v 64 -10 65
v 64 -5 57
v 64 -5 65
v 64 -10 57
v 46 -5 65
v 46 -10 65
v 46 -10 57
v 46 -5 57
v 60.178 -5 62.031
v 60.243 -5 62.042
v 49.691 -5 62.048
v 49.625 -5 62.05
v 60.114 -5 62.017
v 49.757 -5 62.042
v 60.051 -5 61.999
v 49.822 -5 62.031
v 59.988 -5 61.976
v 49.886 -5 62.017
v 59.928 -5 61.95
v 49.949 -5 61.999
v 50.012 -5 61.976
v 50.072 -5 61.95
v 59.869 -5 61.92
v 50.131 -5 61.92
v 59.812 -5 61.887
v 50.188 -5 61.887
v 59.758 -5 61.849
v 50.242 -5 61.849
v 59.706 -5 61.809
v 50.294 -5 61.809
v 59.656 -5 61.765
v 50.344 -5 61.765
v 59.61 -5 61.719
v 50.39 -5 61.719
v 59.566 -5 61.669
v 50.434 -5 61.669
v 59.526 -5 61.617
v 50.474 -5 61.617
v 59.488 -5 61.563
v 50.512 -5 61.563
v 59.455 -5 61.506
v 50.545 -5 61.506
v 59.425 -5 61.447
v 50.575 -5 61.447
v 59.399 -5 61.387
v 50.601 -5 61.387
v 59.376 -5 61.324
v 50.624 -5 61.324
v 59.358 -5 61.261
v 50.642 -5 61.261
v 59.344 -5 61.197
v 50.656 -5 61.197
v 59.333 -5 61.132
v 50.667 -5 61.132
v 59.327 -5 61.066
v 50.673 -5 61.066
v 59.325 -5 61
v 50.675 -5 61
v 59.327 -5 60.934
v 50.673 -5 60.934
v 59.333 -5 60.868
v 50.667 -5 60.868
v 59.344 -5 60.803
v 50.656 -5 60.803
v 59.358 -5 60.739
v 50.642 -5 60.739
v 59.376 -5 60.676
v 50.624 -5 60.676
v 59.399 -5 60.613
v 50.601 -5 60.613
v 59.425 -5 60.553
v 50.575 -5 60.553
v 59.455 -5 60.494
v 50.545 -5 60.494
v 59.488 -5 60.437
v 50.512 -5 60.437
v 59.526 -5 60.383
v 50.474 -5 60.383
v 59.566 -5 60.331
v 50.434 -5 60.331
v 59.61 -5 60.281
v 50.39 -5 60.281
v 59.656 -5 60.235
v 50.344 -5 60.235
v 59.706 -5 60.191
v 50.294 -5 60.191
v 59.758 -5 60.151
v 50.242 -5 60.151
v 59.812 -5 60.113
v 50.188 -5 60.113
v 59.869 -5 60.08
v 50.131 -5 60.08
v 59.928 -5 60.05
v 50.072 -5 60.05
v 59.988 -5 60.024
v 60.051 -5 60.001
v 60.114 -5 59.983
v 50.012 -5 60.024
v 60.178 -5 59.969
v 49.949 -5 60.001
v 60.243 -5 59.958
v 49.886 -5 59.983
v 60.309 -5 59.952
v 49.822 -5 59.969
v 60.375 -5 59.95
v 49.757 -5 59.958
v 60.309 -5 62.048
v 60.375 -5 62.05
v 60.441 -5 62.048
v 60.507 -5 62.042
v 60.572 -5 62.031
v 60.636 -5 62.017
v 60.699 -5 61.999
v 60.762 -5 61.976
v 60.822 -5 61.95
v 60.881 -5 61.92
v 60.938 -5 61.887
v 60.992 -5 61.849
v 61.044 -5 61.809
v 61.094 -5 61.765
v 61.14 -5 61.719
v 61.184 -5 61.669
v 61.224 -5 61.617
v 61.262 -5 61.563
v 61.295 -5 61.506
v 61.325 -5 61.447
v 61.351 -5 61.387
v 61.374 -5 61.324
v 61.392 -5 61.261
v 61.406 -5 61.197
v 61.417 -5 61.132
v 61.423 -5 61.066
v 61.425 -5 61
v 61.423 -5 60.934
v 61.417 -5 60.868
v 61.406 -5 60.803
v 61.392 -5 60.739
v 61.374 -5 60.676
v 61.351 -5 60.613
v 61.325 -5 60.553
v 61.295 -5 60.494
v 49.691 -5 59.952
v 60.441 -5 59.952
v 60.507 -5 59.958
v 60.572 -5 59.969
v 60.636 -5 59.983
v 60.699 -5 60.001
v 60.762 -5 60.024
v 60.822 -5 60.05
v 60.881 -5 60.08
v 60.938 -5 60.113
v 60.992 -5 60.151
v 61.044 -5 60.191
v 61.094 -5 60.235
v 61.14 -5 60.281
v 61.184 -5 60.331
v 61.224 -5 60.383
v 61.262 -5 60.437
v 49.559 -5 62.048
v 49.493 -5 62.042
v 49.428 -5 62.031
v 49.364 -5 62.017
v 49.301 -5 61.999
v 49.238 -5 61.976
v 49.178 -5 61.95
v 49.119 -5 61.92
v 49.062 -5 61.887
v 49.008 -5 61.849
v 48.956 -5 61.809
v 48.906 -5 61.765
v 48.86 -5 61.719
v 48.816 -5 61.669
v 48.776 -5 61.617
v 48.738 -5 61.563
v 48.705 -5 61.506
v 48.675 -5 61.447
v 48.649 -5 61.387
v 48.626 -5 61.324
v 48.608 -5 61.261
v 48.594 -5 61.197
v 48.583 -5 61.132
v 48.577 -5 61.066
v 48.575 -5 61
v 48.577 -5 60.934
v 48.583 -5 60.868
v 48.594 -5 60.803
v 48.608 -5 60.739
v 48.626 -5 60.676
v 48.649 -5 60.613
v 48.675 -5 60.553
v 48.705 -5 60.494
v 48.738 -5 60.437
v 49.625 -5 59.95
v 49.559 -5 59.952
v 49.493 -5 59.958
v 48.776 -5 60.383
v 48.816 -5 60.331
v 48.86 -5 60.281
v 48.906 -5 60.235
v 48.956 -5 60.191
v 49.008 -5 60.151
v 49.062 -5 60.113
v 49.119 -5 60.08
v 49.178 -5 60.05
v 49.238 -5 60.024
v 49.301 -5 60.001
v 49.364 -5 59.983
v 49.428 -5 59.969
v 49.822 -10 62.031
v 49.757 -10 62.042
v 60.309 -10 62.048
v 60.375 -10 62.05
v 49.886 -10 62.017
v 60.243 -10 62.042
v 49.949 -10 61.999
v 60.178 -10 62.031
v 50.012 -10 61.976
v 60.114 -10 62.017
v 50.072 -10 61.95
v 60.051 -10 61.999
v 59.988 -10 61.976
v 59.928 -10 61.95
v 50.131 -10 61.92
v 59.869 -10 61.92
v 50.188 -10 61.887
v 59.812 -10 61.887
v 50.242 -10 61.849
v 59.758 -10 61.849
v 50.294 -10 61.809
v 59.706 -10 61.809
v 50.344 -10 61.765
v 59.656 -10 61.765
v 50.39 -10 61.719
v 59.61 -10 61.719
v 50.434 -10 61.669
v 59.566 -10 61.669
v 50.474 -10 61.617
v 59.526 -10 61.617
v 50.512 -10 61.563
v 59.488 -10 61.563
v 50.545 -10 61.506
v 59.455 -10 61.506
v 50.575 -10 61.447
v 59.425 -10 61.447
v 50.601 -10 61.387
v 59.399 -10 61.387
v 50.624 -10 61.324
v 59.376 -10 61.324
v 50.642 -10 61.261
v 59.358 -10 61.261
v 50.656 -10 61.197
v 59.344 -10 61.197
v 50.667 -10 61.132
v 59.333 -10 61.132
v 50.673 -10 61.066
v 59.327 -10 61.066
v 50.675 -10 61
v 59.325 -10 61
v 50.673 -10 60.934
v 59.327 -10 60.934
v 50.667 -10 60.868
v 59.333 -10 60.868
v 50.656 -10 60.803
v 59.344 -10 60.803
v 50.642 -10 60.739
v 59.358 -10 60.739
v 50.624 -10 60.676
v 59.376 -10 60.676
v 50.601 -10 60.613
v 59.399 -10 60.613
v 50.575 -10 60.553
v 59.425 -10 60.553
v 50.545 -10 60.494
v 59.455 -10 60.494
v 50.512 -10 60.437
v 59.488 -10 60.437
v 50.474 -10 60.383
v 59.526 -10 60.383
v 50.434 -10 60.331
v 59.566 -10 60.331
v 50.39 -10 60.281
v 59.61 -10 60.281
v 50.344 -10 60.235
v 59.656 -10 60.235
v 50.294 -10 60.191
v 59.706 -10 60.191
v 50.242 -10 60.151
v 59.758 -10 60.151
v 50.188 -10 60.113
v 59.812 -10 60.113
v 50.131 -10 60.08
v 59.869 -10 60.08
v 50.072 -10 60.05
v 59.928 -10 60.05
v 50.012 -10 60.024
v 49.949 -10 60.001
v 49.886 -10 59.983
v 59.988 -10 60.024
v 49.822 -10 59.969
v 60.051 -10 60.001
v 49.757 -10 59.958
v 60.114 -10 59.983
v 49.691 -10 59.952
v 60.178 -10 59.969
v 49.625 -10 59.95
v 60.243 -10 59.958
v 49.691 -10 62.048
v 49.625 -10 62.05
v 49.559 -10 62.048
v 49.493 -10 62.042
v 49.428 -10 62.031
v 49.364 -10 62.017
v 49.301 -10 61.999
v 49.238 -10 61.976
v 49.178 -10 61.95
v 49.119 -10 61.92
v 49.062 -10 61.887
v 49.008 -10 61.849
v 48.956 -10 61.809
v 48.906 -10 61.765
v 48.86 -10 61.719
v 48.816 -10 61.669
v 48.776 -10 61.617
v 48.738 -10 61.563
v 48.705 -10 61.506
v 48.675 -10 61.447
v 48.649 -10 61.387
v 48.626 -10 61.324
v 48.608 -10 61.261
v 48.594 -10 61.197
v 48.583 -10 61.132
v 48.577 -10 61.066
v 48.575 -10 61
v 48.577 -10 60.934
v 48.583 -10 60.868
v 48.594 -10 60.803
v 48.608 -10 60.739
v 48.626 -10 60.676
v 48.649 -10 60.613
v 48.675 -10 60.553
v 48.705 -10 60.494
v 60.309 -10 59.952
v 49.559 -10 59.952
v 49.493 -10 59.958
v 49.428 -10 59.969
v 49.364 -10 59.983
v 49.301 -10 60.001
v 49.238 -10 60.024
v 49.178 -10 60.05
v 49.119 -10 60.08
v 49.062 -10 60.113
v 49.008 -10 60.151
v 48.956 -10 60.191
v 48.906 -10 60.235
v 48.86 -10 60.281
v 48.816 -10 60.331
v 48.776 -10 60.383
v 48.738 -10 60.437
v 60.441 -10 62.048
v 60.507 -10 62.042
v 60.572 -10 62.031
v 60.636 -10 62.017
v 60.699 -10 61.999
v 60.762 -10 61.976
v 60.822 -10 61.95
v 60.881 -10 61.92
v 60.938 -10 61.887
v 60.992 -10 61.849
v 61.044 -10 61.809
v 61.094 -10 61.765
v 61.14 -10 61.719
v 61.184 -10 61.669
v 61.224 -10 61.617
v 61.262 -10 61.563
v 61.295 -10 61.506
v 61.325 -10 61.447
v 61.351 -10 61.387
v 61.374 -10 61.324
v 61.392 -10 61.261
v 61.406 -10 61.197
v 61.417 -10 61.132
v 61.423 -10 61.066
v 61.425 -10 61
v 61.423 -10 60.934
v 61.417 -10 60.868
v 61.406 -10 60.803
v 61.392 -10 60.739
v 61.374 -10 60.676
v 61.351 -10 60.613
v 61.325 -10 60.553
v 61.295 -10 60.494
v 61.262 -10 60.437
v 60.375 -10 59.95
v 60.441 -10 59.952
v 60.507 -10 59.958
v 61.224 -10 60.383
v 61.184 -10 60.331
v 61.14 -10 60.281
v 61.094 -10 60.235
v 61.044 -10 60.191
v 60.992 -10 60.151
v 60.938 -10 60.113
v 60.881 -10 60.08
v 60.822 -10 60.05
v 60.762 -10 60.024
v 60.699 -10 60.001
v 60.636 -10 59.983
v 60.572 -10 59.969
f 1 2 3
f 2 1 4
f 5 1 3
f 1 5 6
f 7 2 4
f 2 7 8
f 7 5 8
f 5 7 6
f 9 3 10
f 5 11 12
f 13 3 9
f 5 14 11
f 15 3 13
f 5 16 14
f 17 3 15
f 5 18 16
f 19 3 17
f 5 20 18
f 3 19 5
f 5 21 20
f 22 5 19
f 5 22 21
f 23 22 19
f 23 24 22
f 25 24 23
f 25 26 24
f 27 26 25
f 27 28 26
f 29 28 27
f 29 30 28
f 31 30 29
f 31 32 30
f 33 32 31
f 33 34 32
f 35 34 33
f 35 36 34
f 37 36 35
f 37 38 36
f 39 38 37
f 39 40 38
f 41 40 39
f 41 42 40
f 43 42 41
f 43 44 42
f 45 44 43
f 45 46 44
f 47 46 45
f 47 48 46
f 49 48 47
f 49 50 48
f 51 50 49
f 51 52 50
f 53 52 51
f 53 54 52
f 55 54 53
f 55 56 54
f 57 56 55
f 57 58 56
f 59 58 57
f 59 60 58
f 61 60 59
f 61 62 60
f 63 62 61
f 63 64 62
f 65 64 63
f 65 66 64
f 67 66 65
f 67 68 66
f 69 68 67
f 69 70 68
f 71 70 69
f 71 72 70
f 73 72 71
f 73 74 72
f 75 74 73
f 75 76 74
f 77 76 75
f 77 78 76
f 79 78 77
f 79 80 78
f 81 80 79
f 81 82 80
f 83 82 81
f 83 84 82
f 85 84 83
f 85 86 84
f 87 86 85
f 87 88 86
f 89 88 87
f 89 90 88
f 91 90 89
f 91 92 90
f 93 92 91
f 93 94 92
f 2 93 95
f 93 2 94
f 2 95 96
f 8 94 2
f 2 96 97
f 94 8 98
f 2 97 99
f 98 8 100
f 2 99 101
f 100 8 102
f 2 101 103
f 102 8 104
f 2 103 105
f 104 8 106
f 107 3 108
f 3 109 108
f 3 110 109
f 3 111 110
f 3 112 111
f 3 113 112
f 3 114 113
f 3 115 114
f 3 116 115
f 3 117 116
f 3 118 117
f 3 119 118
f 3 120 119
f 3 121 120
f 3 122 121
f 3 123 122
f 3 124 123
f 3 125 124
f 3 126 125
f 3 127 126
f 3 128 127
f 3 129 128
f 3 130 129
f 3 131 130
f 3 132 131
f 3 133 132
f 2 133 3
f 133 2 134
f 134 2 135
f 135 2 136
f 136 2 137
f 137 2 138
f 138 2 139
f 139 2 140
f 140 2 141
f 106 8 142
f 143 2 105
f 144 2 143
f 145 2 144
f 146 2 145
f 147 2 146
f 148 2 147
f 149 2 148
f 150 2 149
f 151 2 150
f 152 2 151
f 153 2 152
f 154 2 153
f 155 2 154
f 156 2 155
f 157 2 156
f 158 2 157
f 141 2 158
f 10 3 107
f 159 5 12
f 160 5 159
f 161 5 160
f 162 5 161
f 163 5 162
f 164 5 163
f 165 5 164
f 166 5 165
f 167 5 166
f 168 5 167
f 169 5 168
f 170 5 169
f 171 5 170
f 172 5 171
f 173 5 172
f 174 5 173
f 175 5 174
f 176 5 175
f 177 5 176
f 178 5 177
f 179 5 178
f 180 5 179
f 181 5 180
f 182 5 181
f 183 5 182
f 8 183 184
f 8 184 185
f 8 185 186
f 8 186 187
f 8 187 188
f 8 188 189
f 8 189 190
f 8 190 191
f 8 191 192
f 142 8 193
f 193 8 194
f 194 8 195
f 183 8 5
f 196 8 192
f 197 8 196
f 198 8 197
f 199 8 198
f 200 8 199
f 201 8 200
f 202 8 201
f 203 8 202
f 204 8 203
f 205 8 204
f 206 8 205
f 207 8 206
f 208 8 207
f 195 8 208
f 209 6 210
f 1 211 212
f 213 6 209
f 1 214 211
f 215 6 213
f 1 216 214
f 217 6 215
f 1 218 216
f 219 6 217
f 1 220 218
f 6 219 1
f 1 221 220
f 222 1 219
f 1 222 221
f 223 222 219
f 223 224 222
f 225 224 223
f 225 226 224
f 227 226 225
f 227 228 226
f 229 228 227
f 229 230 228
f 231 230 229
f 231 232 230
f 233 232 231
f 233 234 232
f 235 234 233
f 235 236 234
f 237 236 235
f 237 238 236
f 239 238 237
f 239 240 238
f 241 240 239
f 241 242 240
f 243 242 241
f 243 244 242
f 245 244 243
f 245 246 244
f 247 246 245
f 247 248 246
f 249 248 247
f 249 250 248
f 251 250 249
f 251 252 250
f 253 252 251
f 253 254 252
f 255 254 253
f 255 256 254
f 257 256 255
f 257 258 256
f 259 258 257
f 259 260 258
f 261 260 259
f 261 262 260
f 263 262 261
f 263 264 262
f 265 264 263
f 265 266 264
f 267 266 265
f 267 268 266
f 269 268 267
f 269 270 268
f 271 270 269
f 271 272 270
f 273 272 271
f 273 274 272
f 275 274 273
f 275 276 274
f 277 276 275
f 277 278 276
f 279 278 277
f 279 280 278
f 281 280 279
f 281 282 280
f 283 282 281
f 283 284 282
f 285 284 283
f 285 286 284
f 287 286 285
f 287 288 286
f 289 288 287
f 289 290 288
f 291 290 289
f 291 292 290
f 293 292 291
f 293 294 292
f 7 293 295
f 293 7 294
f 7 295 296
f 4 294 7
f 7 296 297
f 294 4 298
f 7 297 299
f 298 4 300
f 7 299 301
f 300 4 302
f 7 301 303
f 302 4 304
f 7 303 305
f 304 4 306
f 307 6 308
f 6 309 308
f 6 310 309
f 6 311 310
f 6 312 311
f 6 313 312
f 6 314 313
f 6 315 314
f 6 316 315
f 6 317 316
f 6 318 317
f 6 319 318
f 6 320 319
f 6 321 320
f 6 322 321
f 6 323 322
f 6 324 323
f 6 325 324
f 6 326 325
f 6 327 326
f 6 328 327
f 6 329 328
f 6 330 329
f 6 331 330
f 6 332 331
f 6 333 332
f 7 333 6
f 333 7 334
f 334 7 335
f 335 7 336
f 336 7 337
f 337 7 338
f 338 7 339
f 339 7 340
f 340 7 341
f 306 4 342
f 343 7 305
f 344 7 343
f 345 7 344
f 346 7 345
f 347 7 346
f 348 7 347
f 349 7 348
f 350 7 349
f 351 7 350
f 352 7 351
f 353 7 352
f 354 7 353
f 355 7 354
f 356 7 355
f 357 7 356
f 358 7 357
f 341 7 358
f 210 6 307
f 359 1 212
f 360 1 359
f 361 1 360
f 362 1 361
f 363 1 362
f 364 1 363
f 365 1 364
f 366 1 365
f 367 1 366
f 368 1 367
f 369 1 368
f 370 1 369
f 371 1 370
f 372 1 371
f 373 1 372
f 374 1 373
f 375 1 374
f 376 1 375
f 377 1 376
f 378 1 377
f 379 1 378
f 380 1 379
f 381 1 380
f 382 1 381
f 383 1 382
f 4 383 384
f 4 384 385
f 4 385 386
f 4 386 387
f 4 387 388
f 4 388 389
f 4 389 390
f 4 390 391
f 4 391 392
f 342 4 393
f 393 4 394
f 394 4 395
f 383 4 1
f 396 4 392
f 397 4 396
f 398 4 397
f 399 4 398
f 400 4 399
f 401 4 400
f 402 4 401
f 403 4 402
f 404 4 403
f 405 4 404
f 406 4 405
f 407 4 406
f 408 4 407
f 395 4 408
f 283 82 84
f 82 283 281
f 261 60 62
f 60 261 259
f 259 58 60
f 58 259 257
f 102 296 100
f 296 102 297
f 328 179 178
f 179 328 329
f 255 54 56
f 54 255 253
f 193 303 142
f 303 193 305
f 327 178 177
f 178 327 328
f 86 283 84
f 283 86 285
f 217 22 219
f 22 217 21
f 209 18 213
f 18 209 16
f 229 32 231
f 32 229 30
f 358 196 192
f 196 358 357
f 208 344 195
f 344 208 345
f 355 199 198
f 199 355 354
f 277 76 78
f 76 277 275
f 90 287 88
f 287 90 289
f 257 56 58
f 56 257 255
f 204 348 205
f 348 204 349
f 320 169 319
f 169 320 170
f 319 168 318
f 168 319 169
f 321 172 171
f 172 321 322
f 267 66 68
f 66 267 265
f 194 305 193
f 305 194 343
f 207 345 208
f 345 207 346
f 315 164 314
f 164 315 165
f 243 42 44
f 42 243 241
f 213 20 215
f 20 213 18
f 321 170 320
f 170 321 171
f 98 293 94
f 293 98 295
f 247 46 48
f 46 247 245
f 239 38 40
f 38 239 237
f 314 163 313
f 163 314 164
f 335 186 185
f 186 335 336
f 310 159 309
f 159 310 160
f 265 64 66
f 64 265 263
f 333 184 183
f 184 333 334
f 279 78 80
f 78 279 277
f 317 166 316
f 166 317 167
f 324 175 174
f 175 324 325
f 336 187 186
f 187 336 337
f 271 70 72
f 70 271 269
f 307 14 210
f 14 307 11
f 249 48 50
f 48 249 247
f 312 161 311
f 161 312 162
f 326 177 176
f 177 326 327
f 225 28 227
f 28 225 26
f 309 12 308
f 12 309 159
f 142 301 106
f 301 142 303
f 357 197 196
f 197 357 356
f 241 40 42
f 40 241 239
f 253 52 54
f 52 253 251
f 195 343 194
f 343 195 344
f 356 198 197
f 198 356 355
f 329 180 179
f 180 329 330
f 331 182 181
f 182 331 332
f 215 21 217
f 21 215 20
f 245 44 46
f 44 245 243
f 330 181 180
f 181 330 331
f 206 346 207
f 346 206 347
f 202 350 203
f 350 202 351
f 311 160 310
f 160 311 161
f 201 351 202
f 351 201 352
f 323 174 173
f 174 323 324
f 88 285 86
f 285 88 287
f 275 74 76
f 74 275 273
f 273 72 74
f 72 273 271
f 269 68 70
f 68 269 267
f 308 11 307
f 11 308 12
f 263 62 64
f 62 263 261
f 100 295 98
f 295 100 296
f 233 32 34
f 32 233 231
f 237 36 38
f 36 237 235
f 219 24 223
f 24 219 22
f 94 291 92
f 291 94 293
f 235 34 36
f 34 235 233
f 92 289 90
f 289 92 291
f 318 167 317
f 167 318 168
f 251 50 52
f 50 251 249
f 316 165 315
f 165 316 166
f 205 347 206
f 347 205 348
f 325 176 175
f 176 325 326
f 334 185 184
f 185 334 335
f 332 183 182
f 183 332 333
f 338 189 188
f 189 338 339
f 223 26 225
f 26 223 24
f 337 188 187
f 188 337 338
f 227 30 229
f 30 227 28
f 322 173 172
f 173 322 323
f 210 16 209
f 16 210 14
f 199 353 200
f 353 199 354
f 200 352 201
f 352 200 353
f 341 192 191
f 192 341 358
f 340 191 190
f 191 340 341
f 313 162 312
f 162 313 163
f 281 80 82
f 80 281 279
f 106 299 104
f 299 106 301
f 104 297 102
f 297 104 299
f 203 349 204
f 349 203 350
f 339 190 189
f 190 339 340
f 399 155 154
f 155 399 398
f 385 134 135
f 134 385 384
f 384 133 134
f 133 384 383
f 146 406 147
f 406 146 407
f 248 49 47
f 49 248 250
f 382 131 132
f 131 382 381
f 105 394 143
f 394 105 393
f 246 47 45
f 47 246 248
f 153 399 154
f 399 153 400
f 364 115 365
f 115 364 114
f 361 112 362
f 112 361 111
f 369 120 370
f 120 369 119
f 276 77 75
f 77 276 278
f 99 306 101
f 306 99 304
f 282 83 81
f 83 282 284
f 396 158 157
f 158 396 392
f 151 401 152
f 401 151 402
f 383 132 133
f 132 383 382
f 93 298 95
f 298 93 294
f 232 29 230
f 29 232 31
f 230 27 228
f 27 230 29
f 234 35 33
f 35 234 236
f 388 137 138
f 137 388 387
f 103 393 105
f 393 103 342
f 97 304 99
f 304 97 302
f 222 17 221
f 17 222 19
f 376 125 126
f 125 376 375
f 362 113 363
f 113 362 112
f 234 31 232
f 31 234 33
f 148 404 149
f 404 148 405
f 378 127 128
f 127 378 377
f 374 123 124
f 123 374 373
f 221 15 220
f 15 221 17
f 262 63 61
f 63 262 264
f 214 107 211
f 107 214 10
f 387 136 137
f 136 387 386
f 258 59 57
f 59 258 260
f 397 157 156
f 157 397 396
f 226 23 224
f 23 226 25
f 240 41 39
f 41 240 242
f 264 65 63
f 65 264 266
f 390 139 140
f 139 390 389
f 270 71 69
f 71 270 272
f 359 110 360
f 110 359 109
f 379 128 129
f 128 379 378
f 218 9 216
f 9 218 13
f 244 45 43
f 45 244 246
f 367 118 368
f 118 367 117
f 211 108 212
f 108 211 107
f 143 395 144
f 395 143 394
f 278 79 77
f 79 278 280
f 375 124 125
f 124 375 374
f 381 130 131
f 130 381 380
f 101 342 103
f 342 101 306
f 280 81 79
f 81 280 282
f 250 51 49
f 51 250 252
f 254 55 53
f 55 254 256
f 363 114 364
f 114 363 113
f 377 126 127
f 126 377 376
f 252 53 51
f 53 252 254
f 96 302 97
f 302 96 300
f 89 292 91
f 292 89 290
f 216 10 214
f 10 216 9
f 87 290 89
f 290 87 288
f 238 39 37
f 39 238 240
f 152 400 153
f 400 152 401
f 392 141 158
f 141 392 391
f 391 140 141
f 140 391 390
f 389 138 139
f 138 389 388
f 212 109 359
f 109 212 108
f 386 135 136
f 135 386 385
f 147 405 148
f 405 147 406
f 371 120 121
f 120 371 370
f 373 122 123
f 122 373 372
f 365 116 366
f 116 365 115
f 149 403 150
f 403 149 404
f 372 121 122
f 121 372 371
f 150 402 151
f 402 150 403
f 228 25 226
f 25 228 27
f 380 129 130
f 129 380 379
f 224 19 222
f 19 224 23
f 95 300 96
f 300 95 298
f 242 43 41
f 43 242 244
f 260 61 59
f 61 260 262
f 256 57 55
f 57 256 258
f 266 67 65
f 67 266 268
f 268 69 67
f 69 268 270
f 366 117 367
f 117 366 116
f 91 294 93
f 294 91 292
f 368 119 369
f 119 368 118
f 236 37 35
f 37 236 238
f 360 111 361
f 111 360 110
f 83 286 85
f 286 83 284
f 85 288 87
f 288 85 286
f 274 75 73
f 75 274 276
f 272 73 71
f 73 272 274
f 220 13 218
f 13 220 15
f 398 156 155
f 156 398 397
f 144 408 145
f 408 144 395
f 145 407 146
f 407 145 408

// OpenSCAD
// ----- ----- ----- Declaração de Variáveis ----- ----- ----- //
res=100;
folga1=0.125;

esp=5;
compriObilongo=20;
largObi=5.85;

basePortax=56;
basePortay=2.85;
basePortaz=15;
PortaR=5.7/2;
PortaAlt=basePortay;
entrePorta=(52.7+41.25)/2;

haste1x=30;
haste1z=30;

haste2x=60;
haste2z=10;

haste3x=10;
haste3z=60+20;

haste4x=10;
haste4z=10;

portax=18;
portaz=8;

entreFuros=(8.6+12.9)/2;
rFuro=2.1/2;

vao=0.5;

entrePard=58-22-6*folga1;

// ----- ----- ----- Declaração de Funções ----- ----- ----- //

// ----- ----- ----- MAIN ----- ----- ----- //
translate([0,0,basePortaz])
difference(){
    translate([0,0,0]){
        //cube([haste2x,esp,haste1z]);
        //translate([0,-esp-(3/2)*basePortay,0])cube([haste2x,esp+(3/2)*basePortay,haste1z]);
        //translate([0,0,haste1z])cube([haste2x,esp,haste2z]);
        //translate([0,0,haste1z+haste2z])cube([haste3x,esp,haste3z]);
        //translate([0,0,haste1z+haste2z+haste3z])cube([haste2x,esp,haste2z]);
        //translate([haste2x-haste3x,0,haste1z+haste2z])cube([haste4x,esp,haste4z-portaz]);
        //translate([haste2x-haste3x+haste4x/2-portax/2,-esp,haste1z+haste2z+haste4z-portaz])cube([portax,esp,portaz]);
        //translate([haste2x-haste3x+haste4x/2-portax/2,0,haste1z+haste2z+haste4z-portaz])cube([portax,esp,portaz]);//
        translate([haste2x-haste3x+haste4x/2-portax/2,-2*esp,haste1z+haste2z+haste4z-portaz])cube([portax,esp,portaz]);
        //translate([haste2x-haste3x,0,haste1z+haste2z+haste3z-haste4z-compriObilongo+portaz])cube([haste4x,esp,haste4z+compriObilongo-portaz]);
        //translate([haste2x-haste3x,-esp,haste1z+haste2z+haste3z-haste4z-compriObilongo+portaz])cube([haste4x,esp,haste4z+compriObilongo-portaz+haste4z]);
        //translate([haste2x-haste3x+haste4x/2-portax/2,-esp,haste1z+haste2z+haste3z-haste4z-compriObilongo])cube([portax,esp,portaz]);
        //translate([haste2x-haste3x+haste4x/2-portax/2,-2*esp,haste1z+haste2z+haste3z-haste4z-compriObilongo])cube([portax,esp,portaz]);
    }
    
    // Furos do Porta
    #translate([-entreFuros/2,-2*esp,0])
    #translate([haste2x-haste4x/2,0,haste1z+haste2z+haste4z-portaz/2])
    #rotate([-90,0,0])
    #cylinder(3*esp,rFuro,rFuro,$fn=res);
    
    #translate([entreFuros/2,-2*esp,0])
    #translate([haste2x-haste4x/2,0,haste1z+haste2z+haste4z-portaz/2])
    #rotate([-90,0,0])
    #cylinder(3*esp,rFuro,rFuro,$fn=res);
    
    #translate([-entreFuros/2,-2*esp,haste1z+haste2z+haste3z-haste4z-20])
    #translate([haste2x-haste4x/2,0,portaz/2])
    #rotate([-90,0,0])
    #cylinder(2*esp,rFuro,rFuro,$fn=res);
    
    #translate([entreFuros/2,-2*esp,haste1z+haste2z+haste3z-haste4z-20])
    #translate([haste2x-haste4x/2,0,portaz/2])
    #rotate([-90,0,0])
    #cylinder(2*esp,rFuro,rFuro,$fn=res);
    
    //Furo Obilongo de Cima
    #hull(){
        #translate([haste2x-haste4x/2,-2*esp,haste1z+haste2z*1.2+haste3z-haste4z-20+(3/2)*portaz])
        #rotate([-90,0,0])
        #cylinder(4*esp,largObi/2,largObi/2,$fn=res);
        
        #translate([0,0,haste4z+compriObilongo-2*portaz+haste2z*0.8])
        #translate([haste2x-haste4x/2,-2*esp,haste1z+haste2z+haste3z-haste4z-20+(3/2)*portaz])
        #rotate([-90,0,0])
        #cylinder(4*esp,largObi/2+folga1,largObi/2+folga1,$fn=res);
    }
    
    // Furo Obilongo de Baixo
    #hull(){
        #translate([haste2x-haste4x/2,-2*esp,haste1z+haste2z*0.8+haste3z-3*haste4z-3*20+(1)*portaz])
        #rotate([-90,0,0])
        #cylinder(4*esp,largObi/2,largObi/2,$fn=res);
        
        #translate([0,0,-(haste4z+compriObilongo-2*portaz+haste2z*0.8)])
        #translate([haste2x-haste4x/2,-2*esp,haste1z+haste2z+haste3z-3*haste4z-3*20+(1)*portaz])
        #rotate([-90,0,0])
        #cylinder(4*esp,largObi/2+folga1,largObi/2+folga1,$fn=res);
    }
    
    #translate([-4*folga1,0,-portaz-(haste4z+compriObilongo-2*portaz+haste2z)])
    #translate([haste2x-haste3x+haste4x/2-portax/2,-2*esp,haste1z+haste2z+haste4z-portaz])
    #cube([portax+8*folga1,2*esp,portaz+haste4z+compriObilongo-2*portaz+haste2z]);
    
    //#translate([haste2x-haste4x/2,-esp,0])
    //#rotate([0,0,45])
    //#translate([-vao/2,-vao/2,0])
    //#cube([vao,vao,haste1z+2*haste2z+haste3z]);
}
/*
difference(){
    translate([haste2x-haste4x/2-basePortax/2,-esp-basePortay/2,0])cube([basePortax,basePortay,basePortaz]);
    
    #translate([haste2x-haste4x/2-entrePorta/2,-esp+basePortay/2,basePortaz/2])
    #rotate([90,0,0])
    #cylinder(PortaAlt,PortaR,PortaR,$fn=res);
   
    #translate([haste2x-haste4x/2+entrePorta/2,-esp+basePortay/2,basePortaz/2])
    #rotate([90,0,0])
    #cylinder(PortaAlt,PortaR,PortaR,$fn=res);
    //entrePorta
}*/


/*// Sustentação 1 
poliedro1Points = [[                       haste2x, -(esp+(3/2)*basePortay),         basePortaz],  //0
                   [haste2x-haste4x/2+basePortax/2, -(esp+(3/2)*basePortay),         basePortaz],  //1
                   [haste2x-haste4x/2+basePortax/2,                     esp,         basePortaz],  //2
                   [                       haste2x,                     esp,         basePortaz],  //3
                   [                       haste2x, -(esp+(3/2)*basePortay), basePortaz+haste1z],  //4
                   [                       haste2x,                     esp, basePortaz+haste1z]]; //5
 
poliedro1Faces = [[0,1,2,3],  // baixo
                    [0,1,4],  // frente
                              // cima
                  [1,4,5,2],  // direita
                    [5,3,2],  // trazeira
                  [5,4,0,3]]; // esquerda

translate([haste2x,-(esp+(3/2)*basePortay),basePortaz])cube([-haste4x/2+basePortax/2,esp+(esp+(3/2)*basePortay),10]);

// Sustentação 2
translate([basePortax/2-entrePard/2,0,0])
translate([haste2x-haste4x/2-basePortax/2,-esp-(3/2)*basePortay,0])
cube([entrePard,esp+esp+(3/2)*basePortay,basePortaz]);*/

// Furo Obilongo de Baixo
//translate([haste2x-haste3x,-esp,haste1z+haste2z+haste3z-haste4z-compriObilongo+portaz-3*haste4z-3*20+portaz+10])cube([haste4x,esp,haste4z+compriObilongo-portaz+haste4z]);
